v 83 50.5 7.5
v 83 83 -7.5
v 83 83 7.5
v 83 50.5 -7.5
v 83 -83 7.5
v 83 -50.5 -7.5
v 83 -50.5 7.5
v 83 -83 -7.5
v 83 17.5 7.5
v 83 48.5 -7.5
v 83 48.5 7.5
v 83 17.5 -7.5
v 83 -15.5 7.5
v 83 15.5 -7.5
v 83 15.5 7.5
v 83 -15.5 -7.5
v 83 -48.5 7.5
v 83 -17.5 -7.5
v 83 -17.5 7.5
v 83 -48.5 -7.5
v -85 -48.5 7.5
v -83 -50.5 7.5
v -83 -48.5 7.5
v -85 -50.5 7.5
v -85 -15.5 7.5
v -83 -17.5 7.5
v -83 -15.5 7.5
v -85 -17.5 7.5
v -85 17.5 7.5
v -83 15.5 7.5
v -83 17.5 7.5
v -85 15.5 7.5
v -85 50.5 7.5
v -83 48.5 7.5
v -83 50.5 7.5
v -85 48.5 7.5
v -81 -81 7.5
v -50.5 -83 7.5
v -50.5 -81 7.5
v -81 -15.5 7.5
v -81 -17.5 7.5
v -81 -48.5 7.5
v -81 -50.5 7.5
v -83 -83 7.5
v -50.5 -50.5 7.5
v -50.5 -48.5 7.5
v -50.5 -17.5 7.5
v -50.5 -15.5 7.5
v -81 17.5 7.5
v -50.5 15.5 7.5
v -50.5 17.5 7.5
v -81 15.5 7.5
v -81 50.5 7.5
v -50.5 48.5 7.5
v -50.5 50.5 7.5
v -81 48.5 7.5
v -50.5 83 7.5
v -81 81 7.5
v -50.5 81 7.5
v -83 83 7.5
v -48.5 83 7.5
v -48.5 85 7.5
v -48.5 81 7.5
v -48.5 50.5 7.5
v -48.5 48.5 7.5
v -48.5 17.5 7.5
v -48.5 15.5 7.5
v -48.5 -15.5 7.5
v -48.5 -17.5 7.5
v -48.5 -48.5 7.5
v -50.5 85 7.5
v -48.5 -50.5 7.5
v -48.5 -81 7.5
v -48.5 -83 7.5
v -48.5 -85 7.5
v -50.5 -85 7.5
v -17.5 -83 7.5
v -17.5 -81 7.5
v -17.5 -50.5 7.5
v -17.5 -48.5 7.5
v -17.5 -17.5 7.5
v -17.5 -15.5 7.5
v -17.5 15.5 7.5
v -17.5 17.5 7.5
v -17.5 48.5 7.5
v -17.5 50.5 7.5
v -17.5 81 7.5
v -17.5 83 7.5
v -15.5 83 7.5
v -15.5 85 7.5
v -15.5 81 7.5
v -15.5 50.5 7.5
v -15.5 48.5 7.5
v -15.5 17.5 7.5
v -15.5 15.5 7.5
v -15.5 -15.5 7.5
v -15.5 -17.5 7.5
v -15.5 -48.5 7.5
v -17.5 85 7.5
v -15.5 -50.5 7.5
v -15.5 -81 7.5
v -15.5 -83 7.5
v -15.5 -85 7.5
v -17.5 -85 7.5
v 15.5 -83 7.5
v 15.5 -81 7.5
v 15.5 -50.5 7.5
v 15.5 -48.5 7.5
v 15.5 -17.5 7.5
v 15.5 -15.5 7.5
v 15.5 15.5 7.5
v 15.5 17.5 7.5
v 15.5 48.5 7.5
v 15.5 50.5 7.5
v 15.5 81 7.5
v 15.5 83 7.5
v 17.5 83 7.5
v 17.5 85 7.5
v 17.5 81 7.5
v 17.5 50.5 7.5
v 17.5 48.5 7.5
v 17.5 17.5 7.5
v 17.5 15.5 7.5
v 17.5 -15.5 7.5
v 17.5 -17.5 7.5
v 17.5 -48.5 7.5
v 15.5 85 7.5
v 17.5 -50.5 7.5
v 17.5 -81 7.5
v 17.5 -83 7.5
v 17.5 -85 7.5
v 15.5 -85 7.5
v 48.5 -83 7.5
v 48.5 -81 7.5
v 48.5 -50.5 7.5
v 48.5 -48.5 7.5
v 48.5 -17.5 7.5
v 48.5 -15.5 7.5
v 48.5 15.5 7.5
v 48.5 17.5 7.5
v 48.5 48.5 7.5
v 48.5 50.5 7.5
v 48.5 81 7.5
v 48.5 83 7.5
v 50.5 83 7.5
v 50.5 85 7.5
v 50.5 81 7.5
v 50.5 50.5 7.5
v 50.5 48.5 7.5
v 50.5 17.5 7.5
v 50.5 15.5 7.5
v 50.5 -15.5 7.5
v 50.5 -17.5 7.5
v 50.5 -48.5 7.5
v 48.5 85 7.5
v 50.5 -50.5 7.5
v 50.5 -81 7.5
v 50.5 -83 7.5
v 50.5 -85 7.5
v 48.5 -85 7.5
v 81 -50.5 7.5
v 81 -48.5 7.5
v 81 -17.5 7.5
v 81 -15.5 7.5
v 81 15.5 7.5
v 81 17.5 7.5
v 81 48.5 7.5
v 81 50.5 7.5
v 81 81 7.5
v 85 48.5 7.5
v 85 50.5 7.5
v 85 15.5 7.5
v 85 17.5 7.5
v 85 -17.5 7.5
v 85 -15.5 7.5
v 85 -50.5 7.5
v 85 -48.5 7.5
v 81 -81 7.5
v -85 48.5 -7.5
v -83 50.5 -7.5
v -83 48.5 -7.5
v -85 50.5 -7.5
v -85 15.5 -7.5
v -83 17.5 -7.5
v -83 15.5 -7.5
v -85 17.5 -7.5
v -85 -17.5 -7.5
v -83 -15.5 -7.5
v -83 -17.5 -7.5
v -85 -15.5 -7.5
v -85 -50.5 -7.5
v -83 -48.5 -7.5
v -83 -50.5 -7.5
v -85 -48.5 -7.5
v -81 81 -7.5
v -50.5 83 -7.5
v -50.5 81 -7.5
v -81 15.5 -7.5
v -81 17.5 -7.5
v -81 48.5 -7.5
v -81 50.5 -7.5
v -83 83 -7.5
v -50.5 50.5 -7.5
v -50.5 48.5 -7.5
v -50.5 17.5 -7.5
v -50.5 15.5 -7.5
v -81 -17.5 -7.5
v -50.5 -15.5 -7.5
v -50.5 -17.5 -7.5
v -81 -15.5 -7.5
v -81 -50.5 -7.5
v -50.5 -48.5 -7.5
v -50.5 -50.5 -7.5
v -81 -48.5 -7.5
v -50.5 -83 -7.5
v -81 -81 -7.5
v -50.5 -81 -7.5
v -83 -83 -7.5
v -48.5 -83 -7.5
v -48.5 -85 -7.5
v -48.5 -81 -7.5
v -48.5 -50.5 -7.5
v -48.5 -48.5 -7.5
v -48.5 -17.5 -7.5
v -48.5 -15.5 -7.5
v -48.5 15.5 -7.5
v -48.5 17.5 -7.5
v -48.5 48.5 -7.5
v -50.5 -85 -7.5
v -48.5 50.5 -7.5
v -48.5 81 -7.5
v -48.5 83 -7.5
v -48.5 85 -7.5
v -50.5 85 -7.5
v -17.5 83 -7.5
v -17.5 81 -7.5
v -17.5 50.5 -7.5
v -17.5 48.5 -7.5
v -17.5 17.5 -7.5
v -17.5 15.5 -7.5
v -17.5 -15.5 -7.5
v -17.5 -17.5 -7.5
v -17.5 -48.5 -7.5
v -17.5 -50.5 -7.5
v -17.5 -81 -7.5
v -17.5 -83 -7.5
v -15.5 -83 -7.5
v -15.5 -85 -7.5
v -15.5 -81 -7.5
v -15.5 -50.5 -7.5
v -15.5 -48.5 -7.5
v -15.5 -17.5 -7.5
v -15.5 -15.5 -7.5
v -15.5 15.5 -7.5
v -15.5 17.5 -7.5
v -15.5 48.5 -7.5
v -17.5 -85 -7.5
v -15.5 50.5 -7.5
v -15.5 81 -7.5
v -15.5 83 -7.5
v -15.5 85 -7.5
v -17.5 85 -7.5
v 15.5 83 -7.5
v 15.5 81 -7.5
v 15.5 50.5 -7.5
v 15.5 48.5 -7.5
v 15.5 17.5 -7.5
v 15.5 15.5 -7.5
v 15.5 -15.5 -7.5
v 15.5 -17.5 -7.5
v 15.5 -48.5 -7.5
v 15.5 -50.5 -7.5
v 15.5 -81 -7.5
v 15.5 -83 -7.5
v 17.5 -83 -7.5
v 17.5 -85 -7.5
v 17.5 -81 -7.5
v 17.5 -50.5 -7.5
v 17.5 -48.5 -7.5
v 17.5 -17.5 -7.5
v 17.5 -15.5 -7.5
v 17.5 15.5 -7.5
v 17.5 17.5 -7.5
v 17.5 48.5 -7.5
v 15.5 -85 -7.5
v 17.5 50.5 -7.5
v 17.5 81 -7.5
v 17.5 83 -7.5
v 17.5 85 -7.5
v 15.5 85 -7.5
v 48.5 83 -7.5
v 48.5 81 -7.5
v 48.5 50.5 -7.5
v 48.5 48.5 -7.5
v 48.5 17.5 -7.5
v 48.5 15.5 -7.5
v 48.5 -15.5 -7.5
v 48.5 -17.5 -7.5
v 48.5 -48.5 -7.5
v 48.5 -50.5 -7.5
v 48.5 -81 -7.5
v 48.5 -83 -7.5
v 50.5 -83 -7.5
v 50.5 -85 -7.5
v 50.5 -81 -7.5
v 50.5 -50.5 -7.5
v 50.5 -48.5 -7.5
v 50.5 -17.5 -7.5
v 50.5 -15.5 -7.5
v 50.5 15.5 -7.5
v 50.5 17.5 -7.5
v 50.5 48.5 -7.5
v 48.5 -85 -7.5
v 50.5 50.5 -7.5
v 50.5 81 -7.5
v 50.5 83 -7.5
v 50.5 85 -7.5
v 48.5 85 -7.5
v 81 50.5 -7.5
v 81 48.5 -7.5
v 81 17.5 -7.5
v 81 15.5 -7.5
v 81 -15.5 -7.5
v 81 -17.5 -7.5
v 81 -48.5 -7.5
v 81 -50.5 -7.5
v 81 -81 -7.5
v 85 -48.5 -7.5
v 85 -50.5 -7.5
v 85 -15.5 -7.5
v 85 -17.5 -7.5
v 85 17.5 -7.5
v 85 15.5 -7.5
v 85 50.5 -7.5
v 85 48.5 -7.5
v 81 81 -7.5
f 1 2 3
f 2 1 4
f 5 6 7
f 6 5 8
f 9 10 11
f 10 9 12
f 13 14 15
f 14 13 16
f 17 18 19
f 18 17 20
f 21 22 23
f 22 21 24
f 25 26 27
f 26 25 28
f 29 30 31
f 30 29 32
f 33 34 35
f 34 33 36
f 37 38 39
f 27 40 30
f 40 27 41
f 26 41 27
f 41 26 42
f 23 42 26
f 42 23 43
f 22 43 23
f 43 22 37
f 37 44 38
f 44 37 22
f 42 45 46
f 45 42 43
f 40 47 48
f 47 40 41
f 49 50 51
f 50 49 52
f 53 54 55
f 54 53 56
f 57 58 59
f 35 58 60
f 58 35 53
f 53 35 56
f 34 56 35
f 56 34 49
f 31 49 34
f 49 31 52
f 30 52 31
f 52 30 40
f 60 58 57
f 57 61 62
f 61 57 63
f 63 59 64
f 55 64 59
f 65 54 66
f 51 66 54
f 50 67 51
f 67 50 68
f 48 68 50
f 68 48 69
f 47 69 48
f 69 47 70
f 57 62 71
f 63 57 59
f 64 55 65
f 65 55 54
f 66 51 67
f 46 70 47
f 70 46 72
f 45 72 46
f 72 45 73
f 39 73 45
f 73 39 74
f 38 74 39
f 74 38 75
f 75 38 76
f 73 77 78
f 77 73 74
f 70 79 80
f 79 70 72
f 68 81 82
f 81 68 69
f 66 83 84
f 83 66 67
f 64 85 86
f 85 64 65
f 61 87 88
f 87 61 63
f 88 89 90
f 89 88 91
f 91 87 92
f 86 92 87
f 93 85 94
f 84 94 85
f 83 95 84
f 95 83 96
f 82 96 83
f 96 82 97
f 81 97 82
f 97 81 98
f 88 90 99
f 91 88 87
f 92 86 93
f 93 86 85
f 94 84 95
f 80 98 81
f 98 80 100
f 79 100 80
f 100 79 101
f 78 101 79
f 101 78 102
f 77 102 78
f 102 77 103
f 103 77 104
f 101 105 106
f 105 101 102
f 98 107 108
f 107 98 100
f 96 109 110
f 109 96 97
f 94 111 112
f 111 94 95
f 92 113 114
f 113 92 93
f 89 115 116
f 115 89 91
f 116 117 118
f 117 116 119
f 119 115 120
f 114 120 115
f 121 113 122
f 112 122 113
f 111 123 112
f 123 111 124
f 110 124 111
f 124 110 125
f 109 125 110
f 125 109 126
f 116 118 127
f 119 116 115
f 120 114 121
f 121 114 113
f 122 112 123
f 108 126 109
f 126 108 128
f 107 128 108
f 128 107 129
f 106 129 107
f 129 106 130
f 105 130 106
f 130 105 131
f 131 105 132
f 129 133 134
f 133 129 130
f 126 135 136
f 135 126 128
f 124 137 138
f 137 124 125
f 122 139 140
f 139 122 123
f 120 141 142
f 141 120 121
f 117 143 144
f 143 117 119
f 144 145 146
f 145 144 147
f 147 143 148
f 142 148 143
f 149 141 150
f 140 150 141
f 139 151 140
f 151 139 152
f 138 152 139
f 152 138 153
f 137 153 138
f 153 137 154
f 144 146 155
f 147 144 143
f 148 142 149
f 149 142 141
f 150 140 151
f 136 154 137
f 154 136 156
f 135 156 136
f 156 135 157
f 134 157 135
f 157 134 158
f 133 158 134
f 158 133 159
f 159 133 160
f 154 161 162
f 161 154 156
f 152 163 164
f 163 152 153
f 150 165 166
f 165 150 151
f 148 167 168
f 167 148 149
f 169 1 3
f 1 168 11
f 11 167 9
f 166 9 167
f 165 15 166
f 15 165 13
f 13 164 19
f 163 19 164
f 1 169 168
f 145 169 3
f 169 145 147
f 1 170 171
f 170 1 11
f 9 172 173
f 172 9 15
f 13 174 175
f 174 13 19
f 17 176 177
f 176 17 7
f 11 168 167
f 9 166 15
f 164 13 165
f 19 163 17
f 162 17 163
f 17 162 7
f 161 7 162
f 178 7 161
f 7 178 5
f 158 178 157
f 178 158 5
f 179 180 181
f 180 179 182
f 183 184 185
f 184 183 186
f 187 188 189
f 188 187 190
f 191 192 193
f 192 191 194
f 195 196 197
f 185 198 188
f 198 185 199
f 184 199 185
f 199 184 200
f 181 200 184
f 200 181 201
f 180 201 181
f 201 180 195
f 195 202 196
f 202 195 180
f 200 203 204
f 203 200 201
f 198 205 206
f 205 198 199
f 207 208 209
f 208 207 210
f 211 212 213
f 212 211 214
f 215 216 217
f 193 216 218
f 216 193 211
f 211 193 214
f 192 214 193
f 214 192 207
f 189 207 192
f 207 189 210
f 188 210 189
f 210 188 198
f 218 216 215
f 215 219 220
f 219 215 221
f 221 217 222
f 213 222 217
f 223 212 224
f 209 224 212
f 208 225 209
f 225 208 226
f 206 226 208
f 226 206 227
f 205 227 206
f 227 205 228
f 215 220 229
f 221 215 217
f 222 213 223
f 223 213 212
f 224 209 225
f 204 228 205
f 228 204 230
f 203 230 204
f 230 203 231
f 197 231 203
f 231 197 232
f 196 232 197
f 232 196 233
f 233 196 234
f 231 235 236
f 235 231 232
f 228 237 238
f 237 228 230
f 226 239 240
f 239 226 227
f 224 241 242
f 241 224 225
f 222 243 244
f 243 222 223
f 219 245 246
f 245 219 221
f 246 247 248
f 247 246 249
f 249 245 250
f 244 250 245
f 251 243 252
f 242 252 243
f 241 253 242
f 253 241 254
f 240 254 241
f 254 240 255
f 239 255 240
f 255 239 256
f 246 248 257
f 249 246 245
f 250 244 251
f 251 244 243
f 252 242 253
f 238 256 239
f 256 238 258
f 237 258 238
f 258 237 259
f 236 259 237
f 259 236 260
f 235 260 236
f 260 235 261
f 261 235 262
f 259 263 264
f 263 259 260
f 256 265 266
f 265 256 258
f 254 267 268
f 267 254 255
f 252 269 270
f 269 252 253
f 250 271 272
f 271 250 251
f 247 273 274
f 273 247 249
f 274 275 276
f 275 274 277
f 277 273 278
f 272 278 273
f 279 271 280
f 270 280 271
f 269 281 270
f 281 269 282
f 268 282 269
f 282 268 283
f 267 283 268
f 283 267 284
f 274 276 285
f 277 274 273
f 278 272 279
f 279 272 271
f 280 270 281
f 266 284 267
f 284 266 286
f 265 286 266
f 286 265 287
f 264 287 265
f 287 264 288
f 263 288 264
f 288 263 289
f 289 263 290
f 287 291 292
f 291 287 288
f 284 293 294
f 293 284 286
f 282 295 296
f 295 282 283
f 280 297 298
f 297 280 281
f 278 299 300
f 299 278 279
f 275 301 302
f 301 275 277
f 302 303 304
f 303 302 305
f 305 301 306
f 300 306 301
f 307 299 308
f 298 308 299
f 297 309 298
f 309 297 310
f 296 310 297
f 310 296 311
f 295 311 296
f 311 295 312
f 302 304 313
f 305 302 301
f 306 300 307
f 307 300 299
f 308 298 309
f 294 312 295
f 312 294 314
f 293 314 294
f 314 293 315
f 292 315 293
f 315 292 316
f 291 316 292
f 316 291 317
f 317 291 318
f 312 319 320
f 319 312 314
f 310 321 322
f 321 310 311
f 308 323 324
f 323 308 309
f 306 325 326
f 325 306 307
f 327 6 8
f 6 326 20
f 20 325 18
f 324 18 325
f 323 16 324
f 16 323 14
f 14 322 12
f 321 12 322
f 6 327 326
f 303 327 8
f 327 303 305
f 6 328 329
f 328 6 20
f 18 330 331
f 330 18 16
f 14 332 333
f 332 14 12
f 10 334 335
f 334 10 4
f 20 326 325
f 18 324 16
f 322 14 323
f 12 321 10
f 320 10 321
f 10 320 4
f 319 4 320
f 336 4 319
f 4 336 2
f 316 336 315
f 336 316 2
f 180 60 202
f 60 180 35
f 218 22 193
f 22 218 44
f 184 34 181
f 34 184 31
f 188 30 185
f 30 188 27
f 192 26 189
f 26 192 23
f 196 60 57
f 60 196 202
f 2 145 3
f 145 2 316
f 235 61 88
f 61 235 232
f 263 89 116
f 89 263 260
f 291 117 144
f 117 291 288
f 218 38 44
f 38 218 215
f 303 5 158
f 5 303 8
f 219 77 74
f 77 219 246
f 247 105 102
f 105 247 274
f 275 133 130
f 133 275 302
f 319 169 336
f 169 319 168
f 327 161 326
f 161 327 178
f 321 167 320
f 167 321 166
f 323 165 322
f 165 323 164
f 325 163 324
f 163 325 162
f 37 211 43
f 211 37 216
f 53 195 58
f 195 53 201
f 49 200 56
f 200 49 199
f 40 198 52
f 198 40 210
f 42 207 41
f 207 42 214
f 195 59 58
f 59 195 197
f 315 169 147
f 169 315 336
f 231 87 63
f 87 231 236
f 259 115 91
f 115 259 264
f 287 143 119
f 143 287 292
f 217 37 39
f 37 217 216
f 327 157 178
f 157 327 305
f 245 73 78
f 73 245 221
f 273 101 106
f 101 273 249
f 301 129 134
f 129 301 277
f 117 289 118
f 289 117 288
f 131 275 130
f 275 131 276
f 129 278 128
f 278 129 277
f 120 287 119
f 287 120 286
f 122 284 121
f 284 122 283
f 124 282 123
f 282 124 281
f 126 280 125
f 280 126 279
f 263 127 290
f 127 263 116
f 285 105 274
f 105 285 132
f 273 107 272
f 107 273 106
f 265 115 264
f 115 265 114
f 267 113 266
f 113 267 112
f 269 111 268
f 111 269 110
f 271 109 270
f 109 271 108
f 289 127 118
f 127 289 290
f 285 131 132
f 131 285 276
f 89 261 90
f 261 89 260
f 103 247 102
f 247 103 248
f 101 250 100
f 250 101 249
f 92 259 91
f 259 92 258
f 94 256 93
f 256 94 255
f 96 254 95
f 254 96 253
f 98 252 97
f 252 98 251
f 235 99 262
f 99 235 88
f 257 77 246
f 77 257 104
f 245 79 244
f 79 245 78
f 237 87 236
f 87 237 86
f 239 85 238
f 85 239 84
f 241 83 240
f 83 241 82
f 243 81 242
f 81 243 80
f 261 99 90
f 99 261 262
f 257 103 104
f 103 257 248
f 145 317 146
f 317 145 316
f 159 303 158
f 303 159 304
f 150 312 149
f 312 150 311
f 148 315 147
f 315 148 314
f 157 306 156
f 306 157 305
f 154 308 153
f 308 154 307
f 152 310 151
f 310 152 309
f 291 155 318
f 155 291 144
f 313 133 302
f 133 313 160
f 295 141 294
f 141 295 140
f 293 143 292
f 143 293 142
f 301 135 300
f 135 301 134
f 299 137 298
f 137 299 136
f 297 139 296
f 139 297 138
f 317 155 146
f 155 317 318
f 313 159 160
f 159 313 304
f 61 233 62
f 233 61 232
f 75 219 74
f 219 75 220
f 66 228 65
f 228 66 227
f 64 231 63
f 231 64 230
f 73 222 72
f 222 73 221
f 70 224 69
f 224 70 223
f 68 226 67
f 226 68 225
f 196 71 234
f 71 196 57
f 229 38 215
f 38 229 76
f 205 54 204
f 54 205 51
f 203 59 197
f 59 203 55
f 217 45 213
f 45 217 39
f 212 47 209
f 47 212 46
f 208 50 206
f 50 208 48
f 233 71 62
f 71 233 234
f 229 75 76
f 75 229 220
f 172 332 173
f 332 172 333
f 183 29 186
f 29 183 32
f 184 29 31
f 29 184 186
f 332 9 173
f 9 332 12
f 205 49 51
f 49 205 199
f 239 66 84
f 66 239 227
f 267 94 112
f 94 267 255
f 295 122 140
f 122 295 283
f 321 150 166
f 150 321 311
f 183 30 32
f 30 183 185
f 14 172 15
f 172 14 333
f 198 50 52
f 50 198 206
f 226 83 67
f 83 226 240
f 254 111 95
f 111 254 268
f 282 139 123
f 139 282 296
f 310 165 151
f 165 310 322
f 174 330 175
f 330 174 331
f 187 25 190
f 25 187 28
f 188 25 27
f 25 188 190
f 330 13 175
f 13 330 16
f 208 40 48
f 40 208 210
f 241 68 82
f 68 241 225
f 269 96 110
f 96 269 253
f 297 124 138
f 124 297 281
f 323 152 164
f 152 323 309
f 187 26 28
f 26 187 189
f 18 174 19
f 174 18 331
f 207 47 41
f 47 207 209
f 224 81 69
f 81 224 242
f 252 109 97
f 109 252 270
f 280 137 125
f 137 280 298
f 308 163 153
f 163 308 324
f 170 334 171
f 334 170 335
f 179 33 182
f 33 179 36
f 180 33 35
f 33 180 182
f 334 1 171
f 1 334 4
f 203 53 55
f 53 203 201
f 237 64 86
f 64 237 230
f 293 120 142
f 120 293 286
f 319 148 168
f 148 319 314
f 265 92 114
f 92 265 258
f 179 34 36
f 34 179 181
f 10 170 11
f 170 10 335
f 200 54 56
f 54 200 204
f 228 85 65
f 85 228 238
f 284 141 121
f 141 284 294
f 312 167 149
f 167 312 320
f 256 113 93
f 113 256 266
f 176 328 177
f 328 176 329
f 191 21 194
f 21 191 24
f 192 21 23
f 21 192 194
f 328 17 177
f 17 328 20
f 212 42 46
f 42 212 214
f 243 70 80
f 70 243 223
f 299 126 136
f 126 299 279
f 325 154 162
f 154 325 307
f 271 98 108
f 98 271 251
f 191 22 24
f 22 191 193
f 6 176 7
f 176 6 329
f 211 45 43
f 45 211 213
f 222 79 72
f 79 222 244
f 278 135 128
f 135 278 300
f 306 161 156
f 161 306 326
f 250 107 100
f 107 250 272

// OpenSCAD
union() {
    tunnel(0,0);
    translate([33/2,0,0]) cube([2,170,15], center=true);
    translate([-33/2,0,0]) cube([2,170,15], center=true);
    translate([33/2+33,0,0]) cube([2,170,15], center=true);
    translate([-33/2-33,0,0]) cube([2,170,15], center=true);
    translate([0,33/2,0]) cube([170,2,15], center=true);
    translate([0,-33/2,0]) cube([170,2,15], center=true);
    translate([0,33/2+33,0]) cube([170,2,15], center=true);
    translate([0,-33/2-33,0]) cube([170,2,15], center=true);
}

module tunnel(x, y) {
    translate([x,y,0]) difference() {
        cube([33*5+1,33*5+1,15], center=true);
        translate([0,0,-1])cube([33*5-1-2,33*5-1-2,25], center=true);
    }
}
